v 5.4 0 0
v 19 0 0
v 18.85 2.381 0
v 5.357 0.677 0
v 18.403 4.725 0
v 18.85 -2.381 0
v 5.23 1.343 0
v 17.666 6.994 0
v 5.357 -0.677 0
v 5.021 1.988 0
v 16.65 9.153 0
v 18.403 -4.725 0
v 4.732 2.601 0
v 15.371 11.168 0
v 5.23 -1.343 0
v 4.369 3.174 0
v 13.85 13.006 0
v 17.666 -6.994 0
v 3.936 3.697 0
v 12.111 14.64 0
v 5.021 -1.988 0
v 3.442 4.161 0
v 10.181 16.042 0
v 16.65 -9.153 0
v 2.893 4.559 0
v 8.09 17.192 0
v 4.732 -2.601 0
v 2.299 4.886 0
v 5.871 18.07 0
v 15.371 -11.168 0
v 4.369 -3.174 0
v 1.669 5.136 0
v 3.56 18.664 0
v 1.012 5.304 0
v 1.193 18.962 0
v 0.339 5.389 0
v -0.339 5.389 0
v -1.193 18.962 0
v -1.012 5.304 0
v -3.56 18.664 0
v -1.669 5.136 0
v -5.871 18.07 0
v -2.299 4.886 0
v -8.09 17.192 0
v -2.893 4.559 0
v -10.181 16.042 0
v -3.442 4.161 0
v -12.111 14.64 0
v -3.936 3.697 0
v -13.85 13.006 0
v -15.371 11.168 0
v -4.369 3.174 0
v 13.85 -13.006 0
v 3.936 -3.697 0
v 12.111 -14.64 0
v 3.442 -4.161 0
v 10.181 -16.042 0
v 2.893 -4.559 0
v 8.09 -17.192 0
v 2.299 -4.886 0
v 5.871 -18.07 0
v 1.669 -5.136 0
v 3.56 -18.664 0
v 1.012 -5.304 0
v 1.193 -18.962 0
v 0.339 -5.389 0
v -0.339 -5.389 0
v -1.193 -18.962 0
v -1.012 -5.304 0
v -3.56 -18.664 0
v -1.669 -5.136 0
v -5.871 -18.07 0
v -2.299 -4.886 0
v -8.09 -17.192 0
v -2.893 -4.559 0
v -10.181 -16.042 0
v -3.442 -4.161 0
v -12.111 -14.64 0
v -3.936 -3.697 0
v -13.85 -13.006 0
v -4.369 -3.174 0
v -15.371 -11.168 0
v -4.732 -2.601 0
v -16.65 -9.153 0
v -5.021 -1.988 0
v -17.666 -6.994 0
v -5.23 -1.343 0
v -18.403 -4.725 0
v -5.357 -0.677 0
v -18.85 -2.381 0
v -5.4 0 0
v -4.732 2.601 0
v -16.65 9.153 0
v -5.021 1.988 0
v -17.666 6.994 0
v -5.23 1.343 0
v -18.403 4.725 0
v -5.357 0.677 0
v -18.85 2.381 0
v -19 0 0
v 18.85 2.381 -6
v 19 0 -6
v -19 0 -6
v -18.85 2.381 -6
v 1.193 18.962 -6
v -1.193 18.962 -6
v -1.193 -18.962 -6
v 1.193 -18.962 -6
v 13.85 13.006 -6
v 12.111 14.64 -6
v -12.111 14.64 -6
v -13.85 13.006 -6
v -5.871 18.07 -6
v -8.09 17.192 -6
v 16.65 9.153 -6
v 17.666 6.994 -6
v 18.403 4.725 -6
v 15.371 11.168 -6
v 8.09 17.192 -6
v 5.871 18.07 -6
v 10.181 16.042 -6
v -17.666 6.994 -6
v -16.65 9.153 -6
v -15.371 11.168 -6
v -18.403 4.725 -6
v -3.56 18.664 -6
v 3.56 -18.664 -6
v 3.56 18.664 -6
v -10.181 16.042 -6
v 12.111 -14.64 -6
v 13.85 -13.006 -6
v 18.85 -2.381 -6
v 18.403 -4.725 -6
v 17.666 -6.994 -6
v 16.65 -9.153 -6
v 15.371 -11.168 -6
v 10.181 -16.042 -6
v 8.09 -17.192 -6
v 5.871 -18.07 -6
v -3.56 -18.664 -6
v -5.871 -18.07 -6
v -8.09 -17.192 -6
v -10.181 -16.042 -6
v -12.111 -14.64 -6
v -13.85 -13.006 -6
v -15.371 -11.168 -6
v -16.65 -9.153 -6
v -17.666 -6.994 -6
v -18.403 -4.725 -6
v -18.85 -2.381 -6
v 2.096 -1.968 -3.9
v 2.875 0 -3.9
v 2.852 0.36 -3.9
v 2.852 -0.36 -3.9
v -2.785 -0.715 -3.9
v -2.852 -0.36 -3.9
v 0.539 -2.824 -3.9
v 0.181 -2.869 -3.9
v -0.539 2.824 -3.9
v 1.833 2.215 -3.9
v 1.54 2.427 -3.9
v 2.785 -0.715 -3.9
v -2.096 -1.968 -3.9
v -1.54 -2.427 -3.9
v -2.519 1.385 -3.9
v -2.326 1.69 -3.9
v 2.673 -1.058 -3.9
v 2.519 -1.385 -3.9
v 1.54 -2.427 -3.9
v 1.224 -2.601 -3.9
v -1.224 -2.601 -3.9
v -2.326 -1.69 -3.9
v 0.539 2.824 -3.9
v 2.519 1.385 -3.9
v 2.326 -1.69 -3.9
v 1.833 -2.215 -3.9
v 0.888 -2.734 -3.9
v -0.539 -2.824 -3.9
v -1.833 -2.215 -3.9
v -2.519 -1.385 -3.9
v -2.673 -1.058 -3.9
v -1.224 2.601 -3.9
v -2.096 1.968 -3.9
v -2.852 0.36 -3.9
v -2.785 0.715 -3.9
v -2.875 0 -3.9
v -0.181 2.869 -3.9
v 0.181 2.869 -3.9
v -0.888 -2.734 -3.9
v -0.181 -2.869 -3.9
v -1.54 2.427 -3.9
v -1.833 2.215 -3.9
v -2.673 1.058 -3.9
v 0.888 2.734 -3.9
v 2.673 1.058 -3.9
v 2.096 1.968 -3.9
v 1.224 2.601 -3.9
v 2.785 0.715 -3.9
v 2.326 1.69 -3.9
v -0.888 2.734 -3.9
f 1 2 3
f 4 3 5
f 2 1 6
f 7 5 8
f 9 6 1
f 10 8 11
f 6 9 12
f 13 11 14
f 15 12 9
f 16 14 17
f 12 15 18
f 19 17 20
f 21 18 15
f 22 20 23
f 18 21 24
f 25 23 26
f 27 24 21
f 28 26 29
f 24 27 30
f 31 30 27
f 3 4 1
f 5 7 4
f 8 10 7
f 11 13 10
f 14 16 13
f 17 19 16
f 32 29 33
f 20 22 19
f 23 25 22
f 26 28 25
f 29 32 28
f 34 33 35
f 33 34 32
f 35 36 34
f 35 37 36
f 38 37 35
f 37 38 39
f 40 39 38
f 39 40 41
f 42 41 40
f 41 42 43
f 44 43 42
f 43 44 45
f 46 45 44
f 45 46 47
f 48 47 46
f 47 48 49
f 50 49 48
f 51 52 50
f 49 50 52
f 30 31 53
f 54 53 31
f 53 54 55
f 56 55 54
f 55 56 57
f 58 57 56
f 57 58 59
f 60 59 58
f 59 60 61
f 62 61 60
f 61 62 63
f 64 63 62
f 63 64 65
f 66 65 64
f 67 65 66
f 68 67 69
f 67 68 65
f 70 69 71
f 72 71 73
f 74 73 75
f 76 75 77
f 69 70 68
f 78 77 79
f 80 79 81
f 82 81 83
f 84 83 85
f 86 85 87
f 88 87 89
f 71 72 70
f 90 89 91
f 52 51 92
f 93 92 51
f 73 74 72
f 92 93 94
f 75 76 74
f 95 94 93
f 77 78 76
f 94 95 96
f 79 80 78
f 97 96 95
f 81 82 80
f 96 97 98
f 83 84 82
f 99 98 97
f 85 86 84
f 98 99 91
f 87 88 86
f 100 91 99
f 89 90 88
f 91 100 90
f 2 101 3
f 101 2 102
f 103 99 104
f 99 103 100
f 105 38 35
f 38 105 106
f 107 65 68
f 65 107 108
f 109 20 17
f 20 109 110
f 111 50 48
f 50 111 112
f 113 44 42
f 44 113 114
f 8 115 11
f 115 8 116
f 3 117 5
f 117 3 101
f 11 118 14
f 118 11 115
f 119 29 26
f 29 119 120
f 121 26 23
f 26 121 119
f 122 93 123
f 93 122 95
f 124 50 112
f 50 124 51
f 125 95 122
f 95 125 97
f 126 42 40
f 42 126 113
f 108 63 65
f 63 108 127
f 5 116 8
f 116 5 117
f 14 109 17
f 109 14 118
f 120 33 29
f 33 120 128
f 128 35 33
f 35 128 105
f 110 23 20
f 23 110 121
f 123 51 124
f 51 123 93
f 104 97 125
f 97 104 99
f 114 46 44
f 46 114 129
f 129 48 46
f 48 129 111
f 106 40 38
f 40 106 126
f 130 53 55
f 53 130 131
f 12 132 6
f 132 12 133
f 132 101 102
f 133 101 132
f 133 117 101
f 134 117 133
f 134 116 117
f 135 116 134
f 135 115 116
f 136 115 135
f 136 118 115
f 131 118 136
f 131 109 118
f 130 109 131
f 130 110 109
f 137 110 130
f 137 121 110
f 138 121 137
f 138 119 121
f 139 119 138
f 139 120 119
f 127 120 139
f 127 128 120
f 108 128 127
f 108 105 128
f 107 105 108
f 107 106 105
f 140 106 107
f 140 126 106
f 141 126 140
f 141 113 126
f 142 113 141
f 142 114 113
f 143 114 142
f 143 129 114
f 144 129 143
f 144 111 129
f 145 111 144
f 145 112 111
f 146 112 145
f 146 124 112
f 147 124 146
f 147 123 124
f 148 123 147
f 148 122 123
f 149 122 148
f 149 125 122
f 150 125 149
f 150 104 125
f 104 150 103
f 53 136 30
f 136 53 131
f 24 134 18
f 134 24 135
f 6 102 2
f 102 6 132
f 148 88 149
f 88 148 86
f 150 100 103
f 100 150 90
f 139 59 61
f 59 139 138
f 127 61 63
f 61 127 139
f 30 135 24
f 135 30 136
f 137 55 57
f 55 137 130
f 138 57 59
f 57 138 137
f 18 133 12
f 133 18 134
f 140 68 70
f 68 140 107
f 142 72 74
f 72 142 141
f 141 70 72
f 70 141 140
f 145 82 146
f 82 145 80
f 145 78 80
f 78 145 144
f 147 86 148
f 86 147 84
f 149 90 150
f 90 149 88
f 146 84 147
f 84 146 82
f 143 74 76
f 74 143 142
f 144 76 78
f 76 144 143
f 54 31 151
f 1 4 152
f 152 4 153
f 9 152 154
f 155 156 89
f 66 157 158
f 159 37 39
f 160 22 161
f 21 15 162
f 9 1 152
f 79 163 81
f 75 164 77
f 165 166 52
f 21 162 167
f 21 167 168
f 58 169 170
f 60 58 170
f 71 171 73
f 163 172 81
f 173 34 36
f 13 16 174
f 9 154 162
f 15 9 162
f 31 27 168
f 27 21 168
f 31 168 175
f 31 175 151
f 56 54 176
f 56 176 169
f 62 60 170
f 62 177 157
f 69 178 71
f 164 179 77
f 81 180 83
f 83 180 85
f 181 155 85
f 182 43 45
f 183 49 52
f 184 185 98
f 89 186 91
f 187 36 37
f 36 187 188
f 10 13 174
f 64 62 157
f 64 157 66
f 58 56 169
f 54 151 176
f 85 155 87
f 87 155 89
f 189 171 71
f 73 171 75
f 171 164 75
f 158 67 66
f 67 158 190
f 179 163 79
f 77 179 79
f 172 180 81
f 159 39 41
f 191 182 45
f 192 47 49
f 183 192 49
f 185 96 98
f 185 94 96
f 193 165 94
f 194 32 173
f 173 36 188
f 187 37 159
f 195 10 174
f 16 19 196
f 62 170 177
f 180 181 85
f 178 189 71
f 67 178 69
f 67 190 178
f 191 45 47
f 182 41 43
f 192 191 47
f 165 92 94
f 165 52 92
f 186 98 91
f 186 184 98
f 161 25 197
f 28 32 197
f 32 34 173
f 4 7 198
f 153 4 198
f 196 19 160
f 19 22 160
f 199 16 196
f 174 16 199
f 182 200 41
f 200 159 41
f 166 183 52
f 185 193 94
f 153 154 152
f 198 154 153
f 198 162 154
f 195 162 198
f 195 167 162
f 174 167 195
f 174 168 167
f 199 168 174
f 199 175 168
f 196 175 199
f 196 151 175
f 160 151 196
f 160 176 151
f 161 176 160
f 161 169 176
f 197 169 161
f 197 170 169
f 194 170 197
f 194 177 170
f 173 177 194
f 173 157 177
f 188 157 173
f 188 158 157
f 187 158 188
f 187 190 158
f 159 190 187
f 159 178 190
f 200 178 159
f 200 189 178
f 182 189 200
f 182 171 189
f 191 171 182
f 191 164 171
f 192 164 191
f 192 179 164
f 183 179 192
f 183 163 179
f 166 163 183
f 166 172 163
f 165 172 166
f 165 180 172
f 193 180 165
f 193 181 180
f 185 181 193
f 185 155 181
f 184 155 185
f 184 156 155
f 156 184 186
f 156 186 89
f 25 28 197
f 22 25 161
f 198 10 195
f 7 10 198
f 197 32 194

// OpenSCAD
$fn = 50;


difference() {
	union() {
		translate(v = [0, 0, -3.0000000000]) {
			cylinder(h = 3, r = 10.0000000000);
		}
		translate(v = [0, 0, -6.0000000000]) {
			cylinder(h = 6, r = 19.0000000000);
		}
	}
	union() {
		translate(v = [0, 0, 0]) {
			rotate(a = [0, 0, 0]) {
				difference() {
					union() {
						#translate(v = [0, 0, -3.0000000000]) {
							cylinder(h = 3, r = 2.6000000000);
						}
						#translate(v = [0, 0, -3.9000000000]) {
							cylinder(h = 3.9000000000, r = 10.0000000000, r1 = 2.8750000000, r2 = 5.4000000000);
						}
						#translate(v = [0, 0, -3.0000000000]) {
							cylinder(h = 3, r = 2.8750000000);
						}
						#translate(v = [0, 0, -3.0000000000]) {
							cylinder(h = 3, r = 2.6000000000);
						}
					}
					union();
				}
			}
		}
	}
}
